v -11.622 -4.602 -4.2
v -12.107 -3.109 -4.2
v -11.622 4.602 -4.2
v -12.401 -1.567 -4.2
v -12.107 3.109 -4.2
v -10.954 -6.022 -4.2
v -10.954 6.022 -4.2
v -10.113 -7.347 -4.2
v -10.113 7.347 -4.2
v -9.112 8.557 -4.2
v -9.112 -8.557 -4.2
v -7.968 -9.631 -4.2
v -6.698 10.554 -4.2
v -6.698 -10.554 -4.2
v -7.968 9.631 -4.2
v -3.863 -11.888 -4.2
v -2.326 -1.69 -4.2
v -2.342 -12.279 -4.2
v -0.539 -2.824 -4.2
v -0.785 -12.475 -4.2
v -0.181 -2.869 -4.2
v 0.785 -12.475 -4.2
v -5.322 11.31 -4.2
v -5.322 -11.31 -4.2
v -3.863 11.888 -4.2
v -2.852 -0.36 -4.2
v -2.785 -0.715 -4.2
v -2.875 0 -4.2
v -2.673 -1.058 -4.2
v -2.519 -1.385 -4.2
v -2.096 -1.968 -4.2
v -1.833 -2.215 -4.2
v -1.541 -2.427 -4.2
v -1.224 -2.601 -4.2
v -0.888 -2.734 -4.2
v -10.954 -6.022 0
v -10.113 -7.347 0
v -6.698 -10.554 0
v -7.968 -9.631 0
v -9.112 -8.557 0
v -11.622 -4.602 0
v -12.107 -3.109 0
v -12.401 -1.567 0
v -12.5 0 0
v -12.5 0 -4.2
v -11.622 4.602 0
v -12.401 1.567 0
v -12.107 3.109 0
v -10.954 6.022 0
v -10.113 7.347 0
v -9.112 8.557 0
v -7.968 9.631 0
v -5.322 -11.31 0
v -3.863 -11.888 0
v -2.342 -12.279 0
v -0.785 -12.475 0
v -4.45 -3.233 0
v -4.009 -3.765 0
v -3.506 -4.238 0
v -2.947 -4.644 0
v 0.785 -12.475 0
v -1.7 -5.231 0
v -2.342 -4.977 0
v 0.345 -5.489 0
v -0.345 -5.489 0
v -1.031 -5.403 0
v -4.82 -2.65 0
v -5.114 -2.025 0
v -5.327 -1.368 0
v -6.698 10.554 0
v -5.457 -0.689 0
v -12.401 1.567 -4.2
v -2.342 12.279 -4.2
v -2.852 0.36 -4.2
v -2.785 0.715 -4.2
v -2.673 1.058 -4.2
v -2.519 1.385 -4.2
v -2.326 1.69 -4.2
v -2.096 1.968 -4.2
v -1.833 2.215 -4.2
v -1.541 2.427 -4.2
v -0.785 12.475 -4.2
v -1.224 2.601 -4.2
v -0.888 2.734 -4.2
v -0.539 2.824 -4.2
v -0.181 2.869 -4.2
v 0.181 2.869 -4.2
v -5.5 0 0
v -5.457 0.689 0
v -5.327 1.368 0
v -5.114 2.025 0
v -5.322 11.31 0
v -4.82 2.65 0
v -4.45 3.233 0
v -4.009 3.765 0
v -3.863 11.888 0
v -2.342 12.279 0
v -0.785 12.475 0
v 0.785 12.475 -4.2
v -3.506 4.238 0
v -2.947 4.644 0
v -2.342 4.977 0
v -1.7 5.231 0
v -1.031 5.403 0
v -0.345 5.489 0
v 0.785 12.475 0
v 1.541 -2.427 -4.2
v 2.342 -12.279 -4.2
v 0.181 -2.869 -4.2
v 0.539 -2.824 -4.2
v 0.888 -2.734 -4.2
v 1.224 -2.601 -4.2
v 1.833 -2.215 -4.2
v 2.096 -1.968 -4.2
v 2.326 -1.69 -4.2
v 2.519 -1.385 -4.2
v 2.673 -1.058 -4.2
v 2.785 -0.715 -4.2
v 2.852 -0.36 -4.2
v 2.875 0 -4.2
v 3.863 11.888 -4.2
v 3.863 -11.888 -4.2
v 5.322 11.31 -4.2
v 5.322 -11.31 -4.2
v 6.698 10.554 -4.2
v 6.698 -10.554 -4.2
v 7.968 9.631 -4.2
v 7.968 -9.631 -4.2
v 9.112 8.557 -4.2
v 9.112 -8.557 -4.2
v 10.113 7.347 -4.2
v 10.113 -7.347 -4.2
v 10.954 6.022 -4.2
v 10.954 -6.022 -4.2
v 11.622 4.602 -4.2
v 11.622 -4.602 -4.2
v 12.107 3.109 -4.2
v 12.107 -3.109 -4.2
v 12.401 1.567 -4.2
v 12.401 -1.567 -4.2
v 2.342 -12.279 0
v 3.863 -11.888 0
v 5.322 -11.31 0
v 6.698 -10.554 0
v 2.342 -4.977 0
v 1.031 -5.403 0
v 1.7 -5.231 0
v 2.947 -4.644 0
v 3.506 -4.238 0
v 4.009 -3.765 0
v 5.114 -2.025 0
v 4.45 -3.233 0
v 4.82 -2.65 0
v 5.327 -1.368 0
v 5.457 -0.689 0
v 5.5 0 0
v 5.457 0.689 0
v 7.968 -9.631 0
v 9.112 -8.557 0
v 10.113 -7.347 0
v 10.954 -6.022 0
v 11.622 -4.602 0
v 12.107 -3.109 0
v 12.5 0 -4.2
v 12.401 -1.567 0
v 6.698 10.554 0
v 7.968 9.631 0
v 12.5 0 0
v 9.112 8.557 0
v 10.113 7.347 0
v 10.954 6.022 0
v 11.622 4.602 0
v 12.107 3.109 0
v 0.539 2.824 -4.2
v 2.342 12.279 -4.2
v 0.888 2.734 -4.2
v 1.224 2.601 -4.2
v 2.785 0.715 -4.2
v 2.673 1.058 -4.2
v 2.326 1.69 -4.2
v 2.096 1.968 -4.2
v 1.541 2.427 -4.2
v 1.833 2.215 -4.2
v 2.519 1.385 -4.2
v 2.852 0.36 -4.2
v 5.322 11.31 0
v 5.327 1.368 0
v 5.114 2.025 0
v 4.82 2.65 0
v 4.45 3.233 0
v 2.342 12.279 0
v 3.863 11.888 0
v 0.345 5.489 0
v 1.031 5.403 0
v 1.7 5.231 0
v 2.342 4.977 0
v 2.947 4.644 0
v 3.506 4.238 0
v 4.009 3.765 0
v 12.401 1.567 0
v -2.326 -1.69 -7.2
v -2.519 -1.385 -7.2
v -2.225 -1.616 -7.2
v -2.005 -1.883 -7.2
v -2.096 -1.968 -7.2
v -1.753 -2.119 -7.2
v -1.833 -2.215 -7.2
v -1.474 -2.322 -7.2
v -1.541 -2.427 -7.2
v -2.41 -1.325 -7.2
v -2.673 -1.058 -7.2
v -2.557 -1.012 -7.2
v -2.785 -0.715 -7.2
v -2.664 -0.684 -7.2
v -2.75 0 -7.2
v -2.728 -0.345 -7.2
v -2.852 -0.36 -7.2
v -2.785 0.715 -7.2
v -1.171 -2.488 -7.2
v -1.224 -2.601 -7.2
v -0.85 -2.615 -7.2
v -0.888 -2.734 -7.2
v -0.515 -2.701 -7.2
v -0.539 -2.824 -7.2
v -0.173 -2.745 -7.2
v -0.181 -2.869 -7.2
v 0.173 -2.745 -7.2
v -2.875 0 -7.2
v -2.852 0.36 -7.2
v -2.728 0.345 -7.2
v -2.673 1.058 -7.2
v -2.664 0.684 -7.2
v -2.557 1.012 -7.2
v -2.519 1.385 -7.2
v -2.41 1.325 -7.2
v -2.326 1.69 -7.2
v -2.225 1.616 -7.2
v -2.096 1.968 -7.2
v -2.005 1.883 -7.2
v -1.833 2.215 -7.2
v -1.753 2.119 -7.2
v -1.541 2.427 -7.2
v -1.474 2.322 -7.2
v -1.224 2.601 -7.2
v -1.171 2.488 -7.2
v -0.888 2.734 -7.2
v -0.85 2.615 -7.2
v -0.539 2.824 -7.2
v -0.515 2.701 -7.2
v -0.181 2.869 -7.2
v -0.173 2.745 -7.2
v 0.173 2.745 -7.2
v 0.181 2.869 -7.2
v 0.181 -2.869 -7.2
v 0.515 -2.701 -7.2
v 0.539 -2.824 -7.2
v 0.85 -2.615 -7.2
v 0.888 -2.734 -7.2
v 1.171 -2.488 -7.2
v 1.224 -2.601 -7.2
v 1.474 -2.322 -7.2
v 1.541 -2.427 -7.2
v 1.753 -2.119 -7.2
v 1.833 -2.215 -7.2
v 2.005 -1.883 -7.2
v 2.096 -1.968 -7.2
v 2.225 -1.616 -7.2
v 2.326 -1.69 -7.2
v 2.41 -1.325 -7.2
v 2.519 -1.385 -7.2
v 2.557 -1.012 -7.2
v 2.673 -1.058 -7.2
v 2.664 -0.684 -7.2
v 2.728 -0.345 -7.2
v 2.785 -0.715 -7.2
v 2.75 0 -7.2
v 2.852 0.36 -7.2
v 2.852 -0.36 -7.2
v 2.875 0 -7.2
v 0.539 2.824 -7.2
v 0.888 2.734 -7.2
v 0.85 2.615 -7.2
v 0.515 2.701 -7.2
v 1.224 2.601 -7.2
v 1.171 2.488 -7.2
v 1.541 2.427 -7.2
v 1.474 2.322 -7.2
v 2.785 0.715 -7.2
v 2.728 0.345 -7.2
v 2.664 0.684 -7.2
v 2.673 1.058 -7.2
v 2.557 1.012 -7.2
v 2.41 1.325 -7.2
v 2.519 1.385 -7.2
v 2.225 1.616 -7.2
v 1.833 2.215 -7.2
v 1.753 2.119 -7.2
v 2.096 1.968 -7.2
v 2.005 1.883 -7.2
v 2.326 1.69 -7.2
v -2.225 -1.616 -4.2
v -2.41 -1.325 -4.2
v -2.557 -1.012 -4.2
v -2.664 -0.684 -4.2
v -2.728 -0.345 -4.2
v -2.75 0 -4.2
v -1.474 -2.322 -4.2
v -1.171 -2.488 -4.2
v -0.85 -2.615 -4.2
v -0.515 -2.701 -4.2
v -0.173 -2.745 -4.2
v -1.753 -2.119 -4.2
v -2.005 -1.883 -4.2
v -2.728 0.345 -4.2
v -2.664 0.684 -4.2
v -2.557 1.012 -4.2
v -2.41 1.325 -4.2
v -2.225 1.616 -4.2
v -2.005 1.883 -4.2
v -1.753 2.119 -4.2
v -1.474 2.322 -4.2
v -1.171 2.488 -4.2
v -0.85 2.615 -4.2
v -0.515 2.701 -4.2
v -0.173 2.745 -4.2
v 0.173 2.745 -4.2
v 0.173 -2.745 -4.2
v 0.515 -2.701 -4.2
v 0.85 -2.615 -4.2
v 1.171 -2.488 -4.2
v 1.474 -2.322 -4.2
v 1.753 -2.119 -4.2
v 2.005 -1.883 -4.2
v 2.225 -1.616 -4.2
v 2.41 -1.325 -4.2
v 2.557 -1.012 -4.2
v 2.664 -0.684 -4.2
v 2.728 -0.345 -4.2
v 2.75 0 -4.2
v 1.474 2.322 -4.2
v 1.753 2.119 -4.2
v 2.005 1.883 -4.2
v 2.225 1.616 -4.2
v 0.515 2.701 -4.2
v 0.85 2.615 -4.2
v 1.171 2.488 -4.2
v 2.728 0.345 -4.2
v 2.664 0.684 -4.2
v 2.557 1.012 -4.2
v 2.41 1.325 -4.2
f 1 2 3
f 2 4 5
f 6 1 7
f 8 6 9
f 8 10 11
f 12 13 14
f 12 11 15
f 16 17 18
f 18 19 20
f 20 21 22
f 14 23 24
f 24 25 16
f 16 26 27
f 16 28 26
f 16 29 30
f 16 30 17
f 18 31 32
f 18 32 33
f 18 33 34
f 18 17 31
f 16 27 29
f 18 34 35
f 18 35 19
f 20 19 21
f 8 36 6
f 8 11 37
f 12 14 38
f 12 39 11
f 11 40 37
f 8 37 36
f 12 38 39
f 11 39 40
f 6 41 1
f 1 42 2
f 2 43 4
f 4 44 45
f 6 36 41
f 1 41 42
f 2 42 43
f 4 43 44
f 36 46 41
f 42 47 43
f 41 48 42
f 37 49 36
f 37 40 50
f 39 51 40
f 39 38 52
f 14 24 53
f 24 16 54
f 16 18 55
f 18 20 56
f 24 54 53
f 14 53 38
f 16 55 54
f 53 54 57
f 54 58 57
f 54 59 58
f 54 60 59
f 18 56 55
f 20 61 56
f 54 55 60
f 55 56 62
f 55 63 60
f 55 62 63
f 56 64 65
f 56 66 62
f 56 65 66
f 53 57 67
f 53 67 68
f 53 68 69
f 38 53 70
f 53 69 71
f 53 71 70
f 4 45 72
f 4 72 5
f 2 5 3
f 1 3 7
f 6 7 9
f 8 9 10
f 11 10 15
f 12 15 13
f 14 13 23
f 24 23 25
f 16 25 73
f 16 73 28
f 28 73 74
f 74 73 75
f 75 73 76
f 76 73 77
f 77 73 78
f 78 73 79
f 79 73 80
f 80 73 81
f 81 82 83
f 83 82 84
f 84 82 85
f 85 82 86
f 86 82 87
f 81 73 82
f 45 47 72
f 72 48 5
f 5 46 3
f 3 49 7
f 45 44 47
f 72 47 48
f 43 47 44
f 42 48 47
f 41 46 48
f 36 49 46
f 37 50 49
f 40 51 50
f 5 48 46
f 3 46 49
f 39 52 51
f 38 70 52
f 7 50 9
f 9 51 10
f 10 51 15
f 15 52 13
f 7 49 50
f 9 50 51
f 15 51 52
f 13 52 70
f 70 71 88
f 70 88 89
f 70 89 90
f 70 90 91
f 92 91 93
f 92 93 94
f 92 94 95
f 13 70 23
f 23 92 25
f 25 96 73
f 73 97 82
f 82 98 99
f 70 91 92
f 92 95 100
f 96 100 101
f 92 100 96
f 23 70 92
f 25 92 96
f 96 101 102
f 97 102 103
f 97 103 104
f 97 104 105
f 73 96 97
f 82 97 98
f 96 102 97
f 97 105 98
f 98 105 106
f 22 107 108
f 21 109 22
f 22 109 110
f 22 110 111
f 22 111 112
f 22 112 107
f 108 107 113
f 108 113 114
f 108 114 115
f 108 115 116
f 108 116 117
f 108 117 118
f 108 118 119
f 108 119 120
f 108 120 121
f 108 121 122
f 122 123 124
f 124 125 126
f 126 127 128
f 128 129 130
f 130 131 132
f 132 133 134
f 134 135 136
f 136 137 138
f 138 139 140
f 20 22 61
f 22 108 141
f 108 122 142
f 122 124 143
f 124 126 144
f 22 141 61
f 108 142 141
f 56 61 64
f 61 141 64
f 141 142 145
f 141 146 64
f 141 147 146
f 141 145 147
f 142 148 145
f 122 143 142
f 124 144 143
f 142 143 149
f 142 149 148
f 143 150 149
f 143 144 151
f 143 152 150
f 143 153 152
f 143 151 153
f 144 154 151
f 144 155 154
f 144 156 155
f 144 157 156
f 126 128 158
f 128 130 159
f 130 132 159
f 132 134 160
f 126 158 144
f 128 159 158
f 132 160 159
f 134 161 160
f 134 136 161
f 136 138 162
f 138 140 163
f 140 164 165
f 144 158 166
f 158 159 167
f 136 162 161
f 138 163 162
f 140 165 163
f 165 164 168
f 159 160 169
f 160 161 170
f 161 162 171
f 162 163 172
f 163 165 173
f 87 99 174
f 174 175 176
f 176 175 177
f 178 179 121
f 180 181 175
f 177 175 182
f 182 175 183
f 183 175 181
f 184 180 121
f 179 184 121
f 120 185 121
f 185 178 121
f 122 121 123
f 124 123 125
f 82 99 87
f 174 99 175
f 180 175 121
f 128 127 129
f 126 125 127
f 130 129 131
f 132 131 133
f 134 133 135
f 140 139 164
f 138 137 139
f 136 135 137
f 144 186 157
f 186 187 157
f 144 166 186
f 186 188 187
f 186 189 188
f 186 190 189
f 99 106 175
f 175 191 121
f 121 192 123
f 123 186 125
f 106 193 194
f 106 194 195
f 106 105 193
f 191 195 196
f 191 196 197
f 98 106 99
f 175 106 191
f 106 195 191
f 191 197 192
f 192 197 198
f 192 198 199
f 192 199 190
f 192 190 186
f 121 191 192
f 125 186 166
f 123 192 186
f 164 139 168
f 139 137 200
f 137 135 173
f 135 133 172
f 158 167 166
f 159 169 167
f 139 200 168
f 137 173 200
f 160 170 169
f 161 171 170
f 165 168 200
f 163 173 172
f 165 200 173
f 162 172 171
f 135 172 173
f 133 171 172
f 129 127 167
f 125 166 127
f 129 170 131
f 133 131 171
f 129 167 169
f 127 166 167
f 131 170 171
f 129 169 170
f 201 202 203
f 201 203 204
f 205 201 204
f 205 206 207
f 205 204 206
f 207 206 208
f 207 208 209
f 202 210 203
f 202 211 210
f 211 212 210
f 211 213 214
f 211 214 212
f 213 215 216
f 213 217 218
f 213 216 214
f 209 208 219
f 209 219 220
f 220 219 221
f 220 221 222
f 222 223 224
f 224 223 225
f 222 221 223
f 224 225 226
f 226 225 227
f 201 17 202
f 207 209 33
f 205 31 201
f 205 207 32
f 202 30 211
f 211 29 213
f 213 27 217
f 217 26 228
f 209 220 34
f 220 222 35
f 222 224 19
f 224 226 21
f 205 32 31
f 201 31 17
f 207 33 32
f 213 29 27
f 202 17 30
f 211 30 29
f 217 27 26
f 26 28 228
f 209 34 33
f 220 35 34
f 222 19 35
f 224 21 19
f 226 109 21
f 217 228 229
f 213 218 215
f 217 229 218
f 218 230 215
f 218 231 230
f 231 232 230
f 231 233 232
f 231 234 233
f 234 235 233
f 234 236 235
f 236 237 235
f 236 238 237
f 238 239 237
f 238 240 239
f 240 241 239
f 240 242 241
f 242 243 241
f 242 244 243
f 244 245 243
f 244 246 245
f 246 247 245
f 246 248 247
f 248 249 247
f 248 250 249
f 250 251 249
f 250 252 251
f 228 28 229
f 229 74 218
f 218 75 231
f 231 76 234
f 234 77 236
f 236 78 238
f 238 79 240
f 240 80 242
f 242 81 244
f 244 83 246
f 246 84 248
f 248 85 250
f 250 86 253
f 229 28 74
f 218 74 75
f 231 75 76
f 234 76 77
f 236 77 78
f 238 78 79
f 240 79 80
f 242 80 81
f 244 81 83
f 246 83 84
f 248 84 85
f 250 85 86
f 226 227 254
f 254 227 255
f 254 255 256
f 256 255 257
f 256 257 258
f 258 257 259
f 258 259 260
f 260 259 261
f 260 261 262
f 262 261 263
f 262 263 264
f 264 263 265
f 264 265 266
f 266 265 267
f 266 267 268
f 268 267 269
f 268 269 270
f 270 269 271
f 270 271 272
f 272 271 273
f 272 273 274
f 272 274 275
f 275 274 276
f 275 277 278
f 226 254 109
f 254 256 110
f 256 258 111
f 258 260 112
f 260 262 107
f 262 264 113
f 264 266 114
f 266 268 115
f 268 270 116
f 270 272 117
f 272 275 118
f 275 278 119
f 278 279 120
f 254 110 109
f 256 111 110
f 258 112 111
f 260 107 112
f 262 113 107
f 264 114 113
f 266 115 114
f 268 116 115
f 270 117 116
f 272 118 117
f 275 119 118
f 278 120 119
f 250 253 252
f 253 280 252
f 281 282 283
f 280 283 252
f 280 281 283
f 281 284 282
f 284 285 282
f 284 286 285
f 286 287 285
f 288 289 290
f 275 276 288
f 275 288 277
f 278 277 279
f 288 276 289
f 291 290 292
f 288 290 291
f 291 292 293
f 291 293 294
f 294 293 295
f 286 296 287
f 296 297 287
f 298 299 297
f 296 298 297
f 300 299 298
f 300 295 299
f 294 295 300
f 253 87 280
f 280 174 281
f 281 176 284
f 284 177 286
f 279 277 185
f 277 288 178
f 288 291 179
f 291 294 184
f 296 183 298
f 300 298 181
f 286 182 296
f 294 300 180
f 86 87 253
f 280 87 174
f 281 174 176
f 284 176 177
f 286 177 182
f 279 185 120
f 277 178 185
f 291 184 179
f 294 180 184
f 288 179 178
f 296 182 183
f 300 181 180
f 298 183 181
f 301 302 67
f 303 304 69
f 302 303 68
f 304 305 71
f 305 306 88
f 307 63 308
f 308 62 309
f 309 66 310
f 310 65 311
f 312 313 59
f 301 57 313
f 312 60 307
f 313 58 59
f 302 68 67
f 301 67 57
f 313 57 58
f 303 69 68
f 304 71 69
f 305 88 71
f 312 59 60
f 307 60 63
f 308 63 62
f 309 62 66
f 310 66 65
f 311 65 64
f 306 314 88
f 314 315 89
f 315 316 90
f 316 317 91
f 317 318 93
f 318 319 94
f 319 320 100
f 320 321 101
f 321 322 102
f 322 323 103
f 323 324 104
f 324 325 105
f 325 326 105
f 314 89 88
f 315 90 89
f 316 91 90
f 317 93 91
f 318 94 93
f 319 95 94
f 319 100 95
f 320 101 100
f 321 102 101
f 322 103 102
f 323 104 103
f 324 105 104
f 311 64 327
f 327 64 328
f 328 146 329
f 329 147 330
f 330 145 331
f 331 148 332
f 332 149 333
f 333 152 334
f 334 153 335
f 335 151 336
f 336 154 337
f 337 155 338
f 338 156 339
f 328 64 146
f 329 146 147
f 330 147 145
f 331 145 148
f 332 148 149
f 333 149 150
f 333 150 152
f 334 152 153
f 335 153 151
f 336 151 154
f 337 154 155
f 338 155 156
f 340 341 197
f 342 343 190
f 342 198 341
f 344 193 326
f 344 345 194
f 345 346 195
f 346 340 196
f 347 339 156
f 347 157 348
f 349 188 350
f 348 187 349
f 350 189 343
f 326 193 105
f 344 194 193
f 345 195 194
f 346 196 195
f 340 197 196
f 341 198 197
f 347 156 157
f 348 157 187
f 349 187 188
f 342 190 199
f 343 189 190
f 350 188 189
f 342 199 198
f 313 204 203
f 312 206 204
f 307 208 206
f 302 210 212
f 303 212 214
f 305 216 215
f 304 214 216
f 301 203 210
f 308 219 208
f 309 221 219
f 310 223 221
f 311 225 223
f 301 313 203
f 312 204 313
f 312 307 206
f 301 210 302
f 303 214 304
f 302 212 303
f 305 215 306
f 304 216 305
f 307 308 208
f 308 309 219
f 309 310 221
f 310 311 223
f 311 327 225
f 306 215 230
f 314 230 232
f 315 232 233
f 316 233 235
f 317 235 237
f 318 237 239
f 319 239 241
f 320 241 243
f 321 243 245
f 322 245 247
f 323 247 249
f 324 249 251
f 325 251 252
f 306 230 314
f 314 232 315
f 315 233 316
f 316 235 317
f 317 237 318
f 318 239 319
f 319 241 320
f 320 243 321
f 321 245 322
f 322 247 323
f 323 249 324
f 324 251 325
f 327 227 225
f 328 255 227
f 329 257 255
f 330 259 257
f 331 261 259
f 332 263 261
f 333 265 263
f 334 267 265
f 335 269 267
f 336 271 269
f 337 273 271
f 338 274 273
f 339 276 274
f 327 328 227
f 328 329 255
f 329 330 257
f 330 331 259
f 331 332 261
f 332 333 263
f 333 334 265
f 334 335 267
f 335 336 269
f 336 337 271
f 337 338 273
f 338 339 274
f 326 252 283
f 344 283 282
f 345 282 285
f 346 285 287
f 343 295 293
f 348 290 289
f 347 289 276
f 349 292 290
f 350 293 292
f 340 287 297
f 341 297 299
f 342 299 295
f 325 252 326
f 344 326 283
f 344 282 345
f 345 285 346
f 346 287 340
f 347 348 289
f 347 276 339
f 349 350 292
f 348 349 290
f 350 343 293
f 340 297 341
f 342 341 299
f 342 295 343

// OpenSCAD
$fn = 50;

difference() {
	union() {
		translate(v = [0, 0, -4.2]) {
			cylinder(h = 4.2, r = 12.5);
		}
		#translate(v = [0, 0, -7.2]) {
			cylinder(h = 7.2, r = 2.875);
		}
	}
	union() {
		translate(v = [0, 0, 0]) {
			rotate(a = [0, 0, 0]) {
				difference() {
					union() {
						translate(v = [0, 0, -7.2]) {
							cylinder(h = 7.2, r = 2.25);
						}
						translate(v = [0, 0, -4.2]) {
							cylinder(h = 4.2, r1 = 2.75, r2 = 5.5);
						}
						translate(v = [0, 0, -7.2]) {
							cylinder(h = 7.2, r = 2.75);
						}
						translate(v = [0, 0, -7.2]) {
							cylinder(h = 7.2, r = 2.25);
						}
					}
					union();
				}
			}
		}
	}
}
